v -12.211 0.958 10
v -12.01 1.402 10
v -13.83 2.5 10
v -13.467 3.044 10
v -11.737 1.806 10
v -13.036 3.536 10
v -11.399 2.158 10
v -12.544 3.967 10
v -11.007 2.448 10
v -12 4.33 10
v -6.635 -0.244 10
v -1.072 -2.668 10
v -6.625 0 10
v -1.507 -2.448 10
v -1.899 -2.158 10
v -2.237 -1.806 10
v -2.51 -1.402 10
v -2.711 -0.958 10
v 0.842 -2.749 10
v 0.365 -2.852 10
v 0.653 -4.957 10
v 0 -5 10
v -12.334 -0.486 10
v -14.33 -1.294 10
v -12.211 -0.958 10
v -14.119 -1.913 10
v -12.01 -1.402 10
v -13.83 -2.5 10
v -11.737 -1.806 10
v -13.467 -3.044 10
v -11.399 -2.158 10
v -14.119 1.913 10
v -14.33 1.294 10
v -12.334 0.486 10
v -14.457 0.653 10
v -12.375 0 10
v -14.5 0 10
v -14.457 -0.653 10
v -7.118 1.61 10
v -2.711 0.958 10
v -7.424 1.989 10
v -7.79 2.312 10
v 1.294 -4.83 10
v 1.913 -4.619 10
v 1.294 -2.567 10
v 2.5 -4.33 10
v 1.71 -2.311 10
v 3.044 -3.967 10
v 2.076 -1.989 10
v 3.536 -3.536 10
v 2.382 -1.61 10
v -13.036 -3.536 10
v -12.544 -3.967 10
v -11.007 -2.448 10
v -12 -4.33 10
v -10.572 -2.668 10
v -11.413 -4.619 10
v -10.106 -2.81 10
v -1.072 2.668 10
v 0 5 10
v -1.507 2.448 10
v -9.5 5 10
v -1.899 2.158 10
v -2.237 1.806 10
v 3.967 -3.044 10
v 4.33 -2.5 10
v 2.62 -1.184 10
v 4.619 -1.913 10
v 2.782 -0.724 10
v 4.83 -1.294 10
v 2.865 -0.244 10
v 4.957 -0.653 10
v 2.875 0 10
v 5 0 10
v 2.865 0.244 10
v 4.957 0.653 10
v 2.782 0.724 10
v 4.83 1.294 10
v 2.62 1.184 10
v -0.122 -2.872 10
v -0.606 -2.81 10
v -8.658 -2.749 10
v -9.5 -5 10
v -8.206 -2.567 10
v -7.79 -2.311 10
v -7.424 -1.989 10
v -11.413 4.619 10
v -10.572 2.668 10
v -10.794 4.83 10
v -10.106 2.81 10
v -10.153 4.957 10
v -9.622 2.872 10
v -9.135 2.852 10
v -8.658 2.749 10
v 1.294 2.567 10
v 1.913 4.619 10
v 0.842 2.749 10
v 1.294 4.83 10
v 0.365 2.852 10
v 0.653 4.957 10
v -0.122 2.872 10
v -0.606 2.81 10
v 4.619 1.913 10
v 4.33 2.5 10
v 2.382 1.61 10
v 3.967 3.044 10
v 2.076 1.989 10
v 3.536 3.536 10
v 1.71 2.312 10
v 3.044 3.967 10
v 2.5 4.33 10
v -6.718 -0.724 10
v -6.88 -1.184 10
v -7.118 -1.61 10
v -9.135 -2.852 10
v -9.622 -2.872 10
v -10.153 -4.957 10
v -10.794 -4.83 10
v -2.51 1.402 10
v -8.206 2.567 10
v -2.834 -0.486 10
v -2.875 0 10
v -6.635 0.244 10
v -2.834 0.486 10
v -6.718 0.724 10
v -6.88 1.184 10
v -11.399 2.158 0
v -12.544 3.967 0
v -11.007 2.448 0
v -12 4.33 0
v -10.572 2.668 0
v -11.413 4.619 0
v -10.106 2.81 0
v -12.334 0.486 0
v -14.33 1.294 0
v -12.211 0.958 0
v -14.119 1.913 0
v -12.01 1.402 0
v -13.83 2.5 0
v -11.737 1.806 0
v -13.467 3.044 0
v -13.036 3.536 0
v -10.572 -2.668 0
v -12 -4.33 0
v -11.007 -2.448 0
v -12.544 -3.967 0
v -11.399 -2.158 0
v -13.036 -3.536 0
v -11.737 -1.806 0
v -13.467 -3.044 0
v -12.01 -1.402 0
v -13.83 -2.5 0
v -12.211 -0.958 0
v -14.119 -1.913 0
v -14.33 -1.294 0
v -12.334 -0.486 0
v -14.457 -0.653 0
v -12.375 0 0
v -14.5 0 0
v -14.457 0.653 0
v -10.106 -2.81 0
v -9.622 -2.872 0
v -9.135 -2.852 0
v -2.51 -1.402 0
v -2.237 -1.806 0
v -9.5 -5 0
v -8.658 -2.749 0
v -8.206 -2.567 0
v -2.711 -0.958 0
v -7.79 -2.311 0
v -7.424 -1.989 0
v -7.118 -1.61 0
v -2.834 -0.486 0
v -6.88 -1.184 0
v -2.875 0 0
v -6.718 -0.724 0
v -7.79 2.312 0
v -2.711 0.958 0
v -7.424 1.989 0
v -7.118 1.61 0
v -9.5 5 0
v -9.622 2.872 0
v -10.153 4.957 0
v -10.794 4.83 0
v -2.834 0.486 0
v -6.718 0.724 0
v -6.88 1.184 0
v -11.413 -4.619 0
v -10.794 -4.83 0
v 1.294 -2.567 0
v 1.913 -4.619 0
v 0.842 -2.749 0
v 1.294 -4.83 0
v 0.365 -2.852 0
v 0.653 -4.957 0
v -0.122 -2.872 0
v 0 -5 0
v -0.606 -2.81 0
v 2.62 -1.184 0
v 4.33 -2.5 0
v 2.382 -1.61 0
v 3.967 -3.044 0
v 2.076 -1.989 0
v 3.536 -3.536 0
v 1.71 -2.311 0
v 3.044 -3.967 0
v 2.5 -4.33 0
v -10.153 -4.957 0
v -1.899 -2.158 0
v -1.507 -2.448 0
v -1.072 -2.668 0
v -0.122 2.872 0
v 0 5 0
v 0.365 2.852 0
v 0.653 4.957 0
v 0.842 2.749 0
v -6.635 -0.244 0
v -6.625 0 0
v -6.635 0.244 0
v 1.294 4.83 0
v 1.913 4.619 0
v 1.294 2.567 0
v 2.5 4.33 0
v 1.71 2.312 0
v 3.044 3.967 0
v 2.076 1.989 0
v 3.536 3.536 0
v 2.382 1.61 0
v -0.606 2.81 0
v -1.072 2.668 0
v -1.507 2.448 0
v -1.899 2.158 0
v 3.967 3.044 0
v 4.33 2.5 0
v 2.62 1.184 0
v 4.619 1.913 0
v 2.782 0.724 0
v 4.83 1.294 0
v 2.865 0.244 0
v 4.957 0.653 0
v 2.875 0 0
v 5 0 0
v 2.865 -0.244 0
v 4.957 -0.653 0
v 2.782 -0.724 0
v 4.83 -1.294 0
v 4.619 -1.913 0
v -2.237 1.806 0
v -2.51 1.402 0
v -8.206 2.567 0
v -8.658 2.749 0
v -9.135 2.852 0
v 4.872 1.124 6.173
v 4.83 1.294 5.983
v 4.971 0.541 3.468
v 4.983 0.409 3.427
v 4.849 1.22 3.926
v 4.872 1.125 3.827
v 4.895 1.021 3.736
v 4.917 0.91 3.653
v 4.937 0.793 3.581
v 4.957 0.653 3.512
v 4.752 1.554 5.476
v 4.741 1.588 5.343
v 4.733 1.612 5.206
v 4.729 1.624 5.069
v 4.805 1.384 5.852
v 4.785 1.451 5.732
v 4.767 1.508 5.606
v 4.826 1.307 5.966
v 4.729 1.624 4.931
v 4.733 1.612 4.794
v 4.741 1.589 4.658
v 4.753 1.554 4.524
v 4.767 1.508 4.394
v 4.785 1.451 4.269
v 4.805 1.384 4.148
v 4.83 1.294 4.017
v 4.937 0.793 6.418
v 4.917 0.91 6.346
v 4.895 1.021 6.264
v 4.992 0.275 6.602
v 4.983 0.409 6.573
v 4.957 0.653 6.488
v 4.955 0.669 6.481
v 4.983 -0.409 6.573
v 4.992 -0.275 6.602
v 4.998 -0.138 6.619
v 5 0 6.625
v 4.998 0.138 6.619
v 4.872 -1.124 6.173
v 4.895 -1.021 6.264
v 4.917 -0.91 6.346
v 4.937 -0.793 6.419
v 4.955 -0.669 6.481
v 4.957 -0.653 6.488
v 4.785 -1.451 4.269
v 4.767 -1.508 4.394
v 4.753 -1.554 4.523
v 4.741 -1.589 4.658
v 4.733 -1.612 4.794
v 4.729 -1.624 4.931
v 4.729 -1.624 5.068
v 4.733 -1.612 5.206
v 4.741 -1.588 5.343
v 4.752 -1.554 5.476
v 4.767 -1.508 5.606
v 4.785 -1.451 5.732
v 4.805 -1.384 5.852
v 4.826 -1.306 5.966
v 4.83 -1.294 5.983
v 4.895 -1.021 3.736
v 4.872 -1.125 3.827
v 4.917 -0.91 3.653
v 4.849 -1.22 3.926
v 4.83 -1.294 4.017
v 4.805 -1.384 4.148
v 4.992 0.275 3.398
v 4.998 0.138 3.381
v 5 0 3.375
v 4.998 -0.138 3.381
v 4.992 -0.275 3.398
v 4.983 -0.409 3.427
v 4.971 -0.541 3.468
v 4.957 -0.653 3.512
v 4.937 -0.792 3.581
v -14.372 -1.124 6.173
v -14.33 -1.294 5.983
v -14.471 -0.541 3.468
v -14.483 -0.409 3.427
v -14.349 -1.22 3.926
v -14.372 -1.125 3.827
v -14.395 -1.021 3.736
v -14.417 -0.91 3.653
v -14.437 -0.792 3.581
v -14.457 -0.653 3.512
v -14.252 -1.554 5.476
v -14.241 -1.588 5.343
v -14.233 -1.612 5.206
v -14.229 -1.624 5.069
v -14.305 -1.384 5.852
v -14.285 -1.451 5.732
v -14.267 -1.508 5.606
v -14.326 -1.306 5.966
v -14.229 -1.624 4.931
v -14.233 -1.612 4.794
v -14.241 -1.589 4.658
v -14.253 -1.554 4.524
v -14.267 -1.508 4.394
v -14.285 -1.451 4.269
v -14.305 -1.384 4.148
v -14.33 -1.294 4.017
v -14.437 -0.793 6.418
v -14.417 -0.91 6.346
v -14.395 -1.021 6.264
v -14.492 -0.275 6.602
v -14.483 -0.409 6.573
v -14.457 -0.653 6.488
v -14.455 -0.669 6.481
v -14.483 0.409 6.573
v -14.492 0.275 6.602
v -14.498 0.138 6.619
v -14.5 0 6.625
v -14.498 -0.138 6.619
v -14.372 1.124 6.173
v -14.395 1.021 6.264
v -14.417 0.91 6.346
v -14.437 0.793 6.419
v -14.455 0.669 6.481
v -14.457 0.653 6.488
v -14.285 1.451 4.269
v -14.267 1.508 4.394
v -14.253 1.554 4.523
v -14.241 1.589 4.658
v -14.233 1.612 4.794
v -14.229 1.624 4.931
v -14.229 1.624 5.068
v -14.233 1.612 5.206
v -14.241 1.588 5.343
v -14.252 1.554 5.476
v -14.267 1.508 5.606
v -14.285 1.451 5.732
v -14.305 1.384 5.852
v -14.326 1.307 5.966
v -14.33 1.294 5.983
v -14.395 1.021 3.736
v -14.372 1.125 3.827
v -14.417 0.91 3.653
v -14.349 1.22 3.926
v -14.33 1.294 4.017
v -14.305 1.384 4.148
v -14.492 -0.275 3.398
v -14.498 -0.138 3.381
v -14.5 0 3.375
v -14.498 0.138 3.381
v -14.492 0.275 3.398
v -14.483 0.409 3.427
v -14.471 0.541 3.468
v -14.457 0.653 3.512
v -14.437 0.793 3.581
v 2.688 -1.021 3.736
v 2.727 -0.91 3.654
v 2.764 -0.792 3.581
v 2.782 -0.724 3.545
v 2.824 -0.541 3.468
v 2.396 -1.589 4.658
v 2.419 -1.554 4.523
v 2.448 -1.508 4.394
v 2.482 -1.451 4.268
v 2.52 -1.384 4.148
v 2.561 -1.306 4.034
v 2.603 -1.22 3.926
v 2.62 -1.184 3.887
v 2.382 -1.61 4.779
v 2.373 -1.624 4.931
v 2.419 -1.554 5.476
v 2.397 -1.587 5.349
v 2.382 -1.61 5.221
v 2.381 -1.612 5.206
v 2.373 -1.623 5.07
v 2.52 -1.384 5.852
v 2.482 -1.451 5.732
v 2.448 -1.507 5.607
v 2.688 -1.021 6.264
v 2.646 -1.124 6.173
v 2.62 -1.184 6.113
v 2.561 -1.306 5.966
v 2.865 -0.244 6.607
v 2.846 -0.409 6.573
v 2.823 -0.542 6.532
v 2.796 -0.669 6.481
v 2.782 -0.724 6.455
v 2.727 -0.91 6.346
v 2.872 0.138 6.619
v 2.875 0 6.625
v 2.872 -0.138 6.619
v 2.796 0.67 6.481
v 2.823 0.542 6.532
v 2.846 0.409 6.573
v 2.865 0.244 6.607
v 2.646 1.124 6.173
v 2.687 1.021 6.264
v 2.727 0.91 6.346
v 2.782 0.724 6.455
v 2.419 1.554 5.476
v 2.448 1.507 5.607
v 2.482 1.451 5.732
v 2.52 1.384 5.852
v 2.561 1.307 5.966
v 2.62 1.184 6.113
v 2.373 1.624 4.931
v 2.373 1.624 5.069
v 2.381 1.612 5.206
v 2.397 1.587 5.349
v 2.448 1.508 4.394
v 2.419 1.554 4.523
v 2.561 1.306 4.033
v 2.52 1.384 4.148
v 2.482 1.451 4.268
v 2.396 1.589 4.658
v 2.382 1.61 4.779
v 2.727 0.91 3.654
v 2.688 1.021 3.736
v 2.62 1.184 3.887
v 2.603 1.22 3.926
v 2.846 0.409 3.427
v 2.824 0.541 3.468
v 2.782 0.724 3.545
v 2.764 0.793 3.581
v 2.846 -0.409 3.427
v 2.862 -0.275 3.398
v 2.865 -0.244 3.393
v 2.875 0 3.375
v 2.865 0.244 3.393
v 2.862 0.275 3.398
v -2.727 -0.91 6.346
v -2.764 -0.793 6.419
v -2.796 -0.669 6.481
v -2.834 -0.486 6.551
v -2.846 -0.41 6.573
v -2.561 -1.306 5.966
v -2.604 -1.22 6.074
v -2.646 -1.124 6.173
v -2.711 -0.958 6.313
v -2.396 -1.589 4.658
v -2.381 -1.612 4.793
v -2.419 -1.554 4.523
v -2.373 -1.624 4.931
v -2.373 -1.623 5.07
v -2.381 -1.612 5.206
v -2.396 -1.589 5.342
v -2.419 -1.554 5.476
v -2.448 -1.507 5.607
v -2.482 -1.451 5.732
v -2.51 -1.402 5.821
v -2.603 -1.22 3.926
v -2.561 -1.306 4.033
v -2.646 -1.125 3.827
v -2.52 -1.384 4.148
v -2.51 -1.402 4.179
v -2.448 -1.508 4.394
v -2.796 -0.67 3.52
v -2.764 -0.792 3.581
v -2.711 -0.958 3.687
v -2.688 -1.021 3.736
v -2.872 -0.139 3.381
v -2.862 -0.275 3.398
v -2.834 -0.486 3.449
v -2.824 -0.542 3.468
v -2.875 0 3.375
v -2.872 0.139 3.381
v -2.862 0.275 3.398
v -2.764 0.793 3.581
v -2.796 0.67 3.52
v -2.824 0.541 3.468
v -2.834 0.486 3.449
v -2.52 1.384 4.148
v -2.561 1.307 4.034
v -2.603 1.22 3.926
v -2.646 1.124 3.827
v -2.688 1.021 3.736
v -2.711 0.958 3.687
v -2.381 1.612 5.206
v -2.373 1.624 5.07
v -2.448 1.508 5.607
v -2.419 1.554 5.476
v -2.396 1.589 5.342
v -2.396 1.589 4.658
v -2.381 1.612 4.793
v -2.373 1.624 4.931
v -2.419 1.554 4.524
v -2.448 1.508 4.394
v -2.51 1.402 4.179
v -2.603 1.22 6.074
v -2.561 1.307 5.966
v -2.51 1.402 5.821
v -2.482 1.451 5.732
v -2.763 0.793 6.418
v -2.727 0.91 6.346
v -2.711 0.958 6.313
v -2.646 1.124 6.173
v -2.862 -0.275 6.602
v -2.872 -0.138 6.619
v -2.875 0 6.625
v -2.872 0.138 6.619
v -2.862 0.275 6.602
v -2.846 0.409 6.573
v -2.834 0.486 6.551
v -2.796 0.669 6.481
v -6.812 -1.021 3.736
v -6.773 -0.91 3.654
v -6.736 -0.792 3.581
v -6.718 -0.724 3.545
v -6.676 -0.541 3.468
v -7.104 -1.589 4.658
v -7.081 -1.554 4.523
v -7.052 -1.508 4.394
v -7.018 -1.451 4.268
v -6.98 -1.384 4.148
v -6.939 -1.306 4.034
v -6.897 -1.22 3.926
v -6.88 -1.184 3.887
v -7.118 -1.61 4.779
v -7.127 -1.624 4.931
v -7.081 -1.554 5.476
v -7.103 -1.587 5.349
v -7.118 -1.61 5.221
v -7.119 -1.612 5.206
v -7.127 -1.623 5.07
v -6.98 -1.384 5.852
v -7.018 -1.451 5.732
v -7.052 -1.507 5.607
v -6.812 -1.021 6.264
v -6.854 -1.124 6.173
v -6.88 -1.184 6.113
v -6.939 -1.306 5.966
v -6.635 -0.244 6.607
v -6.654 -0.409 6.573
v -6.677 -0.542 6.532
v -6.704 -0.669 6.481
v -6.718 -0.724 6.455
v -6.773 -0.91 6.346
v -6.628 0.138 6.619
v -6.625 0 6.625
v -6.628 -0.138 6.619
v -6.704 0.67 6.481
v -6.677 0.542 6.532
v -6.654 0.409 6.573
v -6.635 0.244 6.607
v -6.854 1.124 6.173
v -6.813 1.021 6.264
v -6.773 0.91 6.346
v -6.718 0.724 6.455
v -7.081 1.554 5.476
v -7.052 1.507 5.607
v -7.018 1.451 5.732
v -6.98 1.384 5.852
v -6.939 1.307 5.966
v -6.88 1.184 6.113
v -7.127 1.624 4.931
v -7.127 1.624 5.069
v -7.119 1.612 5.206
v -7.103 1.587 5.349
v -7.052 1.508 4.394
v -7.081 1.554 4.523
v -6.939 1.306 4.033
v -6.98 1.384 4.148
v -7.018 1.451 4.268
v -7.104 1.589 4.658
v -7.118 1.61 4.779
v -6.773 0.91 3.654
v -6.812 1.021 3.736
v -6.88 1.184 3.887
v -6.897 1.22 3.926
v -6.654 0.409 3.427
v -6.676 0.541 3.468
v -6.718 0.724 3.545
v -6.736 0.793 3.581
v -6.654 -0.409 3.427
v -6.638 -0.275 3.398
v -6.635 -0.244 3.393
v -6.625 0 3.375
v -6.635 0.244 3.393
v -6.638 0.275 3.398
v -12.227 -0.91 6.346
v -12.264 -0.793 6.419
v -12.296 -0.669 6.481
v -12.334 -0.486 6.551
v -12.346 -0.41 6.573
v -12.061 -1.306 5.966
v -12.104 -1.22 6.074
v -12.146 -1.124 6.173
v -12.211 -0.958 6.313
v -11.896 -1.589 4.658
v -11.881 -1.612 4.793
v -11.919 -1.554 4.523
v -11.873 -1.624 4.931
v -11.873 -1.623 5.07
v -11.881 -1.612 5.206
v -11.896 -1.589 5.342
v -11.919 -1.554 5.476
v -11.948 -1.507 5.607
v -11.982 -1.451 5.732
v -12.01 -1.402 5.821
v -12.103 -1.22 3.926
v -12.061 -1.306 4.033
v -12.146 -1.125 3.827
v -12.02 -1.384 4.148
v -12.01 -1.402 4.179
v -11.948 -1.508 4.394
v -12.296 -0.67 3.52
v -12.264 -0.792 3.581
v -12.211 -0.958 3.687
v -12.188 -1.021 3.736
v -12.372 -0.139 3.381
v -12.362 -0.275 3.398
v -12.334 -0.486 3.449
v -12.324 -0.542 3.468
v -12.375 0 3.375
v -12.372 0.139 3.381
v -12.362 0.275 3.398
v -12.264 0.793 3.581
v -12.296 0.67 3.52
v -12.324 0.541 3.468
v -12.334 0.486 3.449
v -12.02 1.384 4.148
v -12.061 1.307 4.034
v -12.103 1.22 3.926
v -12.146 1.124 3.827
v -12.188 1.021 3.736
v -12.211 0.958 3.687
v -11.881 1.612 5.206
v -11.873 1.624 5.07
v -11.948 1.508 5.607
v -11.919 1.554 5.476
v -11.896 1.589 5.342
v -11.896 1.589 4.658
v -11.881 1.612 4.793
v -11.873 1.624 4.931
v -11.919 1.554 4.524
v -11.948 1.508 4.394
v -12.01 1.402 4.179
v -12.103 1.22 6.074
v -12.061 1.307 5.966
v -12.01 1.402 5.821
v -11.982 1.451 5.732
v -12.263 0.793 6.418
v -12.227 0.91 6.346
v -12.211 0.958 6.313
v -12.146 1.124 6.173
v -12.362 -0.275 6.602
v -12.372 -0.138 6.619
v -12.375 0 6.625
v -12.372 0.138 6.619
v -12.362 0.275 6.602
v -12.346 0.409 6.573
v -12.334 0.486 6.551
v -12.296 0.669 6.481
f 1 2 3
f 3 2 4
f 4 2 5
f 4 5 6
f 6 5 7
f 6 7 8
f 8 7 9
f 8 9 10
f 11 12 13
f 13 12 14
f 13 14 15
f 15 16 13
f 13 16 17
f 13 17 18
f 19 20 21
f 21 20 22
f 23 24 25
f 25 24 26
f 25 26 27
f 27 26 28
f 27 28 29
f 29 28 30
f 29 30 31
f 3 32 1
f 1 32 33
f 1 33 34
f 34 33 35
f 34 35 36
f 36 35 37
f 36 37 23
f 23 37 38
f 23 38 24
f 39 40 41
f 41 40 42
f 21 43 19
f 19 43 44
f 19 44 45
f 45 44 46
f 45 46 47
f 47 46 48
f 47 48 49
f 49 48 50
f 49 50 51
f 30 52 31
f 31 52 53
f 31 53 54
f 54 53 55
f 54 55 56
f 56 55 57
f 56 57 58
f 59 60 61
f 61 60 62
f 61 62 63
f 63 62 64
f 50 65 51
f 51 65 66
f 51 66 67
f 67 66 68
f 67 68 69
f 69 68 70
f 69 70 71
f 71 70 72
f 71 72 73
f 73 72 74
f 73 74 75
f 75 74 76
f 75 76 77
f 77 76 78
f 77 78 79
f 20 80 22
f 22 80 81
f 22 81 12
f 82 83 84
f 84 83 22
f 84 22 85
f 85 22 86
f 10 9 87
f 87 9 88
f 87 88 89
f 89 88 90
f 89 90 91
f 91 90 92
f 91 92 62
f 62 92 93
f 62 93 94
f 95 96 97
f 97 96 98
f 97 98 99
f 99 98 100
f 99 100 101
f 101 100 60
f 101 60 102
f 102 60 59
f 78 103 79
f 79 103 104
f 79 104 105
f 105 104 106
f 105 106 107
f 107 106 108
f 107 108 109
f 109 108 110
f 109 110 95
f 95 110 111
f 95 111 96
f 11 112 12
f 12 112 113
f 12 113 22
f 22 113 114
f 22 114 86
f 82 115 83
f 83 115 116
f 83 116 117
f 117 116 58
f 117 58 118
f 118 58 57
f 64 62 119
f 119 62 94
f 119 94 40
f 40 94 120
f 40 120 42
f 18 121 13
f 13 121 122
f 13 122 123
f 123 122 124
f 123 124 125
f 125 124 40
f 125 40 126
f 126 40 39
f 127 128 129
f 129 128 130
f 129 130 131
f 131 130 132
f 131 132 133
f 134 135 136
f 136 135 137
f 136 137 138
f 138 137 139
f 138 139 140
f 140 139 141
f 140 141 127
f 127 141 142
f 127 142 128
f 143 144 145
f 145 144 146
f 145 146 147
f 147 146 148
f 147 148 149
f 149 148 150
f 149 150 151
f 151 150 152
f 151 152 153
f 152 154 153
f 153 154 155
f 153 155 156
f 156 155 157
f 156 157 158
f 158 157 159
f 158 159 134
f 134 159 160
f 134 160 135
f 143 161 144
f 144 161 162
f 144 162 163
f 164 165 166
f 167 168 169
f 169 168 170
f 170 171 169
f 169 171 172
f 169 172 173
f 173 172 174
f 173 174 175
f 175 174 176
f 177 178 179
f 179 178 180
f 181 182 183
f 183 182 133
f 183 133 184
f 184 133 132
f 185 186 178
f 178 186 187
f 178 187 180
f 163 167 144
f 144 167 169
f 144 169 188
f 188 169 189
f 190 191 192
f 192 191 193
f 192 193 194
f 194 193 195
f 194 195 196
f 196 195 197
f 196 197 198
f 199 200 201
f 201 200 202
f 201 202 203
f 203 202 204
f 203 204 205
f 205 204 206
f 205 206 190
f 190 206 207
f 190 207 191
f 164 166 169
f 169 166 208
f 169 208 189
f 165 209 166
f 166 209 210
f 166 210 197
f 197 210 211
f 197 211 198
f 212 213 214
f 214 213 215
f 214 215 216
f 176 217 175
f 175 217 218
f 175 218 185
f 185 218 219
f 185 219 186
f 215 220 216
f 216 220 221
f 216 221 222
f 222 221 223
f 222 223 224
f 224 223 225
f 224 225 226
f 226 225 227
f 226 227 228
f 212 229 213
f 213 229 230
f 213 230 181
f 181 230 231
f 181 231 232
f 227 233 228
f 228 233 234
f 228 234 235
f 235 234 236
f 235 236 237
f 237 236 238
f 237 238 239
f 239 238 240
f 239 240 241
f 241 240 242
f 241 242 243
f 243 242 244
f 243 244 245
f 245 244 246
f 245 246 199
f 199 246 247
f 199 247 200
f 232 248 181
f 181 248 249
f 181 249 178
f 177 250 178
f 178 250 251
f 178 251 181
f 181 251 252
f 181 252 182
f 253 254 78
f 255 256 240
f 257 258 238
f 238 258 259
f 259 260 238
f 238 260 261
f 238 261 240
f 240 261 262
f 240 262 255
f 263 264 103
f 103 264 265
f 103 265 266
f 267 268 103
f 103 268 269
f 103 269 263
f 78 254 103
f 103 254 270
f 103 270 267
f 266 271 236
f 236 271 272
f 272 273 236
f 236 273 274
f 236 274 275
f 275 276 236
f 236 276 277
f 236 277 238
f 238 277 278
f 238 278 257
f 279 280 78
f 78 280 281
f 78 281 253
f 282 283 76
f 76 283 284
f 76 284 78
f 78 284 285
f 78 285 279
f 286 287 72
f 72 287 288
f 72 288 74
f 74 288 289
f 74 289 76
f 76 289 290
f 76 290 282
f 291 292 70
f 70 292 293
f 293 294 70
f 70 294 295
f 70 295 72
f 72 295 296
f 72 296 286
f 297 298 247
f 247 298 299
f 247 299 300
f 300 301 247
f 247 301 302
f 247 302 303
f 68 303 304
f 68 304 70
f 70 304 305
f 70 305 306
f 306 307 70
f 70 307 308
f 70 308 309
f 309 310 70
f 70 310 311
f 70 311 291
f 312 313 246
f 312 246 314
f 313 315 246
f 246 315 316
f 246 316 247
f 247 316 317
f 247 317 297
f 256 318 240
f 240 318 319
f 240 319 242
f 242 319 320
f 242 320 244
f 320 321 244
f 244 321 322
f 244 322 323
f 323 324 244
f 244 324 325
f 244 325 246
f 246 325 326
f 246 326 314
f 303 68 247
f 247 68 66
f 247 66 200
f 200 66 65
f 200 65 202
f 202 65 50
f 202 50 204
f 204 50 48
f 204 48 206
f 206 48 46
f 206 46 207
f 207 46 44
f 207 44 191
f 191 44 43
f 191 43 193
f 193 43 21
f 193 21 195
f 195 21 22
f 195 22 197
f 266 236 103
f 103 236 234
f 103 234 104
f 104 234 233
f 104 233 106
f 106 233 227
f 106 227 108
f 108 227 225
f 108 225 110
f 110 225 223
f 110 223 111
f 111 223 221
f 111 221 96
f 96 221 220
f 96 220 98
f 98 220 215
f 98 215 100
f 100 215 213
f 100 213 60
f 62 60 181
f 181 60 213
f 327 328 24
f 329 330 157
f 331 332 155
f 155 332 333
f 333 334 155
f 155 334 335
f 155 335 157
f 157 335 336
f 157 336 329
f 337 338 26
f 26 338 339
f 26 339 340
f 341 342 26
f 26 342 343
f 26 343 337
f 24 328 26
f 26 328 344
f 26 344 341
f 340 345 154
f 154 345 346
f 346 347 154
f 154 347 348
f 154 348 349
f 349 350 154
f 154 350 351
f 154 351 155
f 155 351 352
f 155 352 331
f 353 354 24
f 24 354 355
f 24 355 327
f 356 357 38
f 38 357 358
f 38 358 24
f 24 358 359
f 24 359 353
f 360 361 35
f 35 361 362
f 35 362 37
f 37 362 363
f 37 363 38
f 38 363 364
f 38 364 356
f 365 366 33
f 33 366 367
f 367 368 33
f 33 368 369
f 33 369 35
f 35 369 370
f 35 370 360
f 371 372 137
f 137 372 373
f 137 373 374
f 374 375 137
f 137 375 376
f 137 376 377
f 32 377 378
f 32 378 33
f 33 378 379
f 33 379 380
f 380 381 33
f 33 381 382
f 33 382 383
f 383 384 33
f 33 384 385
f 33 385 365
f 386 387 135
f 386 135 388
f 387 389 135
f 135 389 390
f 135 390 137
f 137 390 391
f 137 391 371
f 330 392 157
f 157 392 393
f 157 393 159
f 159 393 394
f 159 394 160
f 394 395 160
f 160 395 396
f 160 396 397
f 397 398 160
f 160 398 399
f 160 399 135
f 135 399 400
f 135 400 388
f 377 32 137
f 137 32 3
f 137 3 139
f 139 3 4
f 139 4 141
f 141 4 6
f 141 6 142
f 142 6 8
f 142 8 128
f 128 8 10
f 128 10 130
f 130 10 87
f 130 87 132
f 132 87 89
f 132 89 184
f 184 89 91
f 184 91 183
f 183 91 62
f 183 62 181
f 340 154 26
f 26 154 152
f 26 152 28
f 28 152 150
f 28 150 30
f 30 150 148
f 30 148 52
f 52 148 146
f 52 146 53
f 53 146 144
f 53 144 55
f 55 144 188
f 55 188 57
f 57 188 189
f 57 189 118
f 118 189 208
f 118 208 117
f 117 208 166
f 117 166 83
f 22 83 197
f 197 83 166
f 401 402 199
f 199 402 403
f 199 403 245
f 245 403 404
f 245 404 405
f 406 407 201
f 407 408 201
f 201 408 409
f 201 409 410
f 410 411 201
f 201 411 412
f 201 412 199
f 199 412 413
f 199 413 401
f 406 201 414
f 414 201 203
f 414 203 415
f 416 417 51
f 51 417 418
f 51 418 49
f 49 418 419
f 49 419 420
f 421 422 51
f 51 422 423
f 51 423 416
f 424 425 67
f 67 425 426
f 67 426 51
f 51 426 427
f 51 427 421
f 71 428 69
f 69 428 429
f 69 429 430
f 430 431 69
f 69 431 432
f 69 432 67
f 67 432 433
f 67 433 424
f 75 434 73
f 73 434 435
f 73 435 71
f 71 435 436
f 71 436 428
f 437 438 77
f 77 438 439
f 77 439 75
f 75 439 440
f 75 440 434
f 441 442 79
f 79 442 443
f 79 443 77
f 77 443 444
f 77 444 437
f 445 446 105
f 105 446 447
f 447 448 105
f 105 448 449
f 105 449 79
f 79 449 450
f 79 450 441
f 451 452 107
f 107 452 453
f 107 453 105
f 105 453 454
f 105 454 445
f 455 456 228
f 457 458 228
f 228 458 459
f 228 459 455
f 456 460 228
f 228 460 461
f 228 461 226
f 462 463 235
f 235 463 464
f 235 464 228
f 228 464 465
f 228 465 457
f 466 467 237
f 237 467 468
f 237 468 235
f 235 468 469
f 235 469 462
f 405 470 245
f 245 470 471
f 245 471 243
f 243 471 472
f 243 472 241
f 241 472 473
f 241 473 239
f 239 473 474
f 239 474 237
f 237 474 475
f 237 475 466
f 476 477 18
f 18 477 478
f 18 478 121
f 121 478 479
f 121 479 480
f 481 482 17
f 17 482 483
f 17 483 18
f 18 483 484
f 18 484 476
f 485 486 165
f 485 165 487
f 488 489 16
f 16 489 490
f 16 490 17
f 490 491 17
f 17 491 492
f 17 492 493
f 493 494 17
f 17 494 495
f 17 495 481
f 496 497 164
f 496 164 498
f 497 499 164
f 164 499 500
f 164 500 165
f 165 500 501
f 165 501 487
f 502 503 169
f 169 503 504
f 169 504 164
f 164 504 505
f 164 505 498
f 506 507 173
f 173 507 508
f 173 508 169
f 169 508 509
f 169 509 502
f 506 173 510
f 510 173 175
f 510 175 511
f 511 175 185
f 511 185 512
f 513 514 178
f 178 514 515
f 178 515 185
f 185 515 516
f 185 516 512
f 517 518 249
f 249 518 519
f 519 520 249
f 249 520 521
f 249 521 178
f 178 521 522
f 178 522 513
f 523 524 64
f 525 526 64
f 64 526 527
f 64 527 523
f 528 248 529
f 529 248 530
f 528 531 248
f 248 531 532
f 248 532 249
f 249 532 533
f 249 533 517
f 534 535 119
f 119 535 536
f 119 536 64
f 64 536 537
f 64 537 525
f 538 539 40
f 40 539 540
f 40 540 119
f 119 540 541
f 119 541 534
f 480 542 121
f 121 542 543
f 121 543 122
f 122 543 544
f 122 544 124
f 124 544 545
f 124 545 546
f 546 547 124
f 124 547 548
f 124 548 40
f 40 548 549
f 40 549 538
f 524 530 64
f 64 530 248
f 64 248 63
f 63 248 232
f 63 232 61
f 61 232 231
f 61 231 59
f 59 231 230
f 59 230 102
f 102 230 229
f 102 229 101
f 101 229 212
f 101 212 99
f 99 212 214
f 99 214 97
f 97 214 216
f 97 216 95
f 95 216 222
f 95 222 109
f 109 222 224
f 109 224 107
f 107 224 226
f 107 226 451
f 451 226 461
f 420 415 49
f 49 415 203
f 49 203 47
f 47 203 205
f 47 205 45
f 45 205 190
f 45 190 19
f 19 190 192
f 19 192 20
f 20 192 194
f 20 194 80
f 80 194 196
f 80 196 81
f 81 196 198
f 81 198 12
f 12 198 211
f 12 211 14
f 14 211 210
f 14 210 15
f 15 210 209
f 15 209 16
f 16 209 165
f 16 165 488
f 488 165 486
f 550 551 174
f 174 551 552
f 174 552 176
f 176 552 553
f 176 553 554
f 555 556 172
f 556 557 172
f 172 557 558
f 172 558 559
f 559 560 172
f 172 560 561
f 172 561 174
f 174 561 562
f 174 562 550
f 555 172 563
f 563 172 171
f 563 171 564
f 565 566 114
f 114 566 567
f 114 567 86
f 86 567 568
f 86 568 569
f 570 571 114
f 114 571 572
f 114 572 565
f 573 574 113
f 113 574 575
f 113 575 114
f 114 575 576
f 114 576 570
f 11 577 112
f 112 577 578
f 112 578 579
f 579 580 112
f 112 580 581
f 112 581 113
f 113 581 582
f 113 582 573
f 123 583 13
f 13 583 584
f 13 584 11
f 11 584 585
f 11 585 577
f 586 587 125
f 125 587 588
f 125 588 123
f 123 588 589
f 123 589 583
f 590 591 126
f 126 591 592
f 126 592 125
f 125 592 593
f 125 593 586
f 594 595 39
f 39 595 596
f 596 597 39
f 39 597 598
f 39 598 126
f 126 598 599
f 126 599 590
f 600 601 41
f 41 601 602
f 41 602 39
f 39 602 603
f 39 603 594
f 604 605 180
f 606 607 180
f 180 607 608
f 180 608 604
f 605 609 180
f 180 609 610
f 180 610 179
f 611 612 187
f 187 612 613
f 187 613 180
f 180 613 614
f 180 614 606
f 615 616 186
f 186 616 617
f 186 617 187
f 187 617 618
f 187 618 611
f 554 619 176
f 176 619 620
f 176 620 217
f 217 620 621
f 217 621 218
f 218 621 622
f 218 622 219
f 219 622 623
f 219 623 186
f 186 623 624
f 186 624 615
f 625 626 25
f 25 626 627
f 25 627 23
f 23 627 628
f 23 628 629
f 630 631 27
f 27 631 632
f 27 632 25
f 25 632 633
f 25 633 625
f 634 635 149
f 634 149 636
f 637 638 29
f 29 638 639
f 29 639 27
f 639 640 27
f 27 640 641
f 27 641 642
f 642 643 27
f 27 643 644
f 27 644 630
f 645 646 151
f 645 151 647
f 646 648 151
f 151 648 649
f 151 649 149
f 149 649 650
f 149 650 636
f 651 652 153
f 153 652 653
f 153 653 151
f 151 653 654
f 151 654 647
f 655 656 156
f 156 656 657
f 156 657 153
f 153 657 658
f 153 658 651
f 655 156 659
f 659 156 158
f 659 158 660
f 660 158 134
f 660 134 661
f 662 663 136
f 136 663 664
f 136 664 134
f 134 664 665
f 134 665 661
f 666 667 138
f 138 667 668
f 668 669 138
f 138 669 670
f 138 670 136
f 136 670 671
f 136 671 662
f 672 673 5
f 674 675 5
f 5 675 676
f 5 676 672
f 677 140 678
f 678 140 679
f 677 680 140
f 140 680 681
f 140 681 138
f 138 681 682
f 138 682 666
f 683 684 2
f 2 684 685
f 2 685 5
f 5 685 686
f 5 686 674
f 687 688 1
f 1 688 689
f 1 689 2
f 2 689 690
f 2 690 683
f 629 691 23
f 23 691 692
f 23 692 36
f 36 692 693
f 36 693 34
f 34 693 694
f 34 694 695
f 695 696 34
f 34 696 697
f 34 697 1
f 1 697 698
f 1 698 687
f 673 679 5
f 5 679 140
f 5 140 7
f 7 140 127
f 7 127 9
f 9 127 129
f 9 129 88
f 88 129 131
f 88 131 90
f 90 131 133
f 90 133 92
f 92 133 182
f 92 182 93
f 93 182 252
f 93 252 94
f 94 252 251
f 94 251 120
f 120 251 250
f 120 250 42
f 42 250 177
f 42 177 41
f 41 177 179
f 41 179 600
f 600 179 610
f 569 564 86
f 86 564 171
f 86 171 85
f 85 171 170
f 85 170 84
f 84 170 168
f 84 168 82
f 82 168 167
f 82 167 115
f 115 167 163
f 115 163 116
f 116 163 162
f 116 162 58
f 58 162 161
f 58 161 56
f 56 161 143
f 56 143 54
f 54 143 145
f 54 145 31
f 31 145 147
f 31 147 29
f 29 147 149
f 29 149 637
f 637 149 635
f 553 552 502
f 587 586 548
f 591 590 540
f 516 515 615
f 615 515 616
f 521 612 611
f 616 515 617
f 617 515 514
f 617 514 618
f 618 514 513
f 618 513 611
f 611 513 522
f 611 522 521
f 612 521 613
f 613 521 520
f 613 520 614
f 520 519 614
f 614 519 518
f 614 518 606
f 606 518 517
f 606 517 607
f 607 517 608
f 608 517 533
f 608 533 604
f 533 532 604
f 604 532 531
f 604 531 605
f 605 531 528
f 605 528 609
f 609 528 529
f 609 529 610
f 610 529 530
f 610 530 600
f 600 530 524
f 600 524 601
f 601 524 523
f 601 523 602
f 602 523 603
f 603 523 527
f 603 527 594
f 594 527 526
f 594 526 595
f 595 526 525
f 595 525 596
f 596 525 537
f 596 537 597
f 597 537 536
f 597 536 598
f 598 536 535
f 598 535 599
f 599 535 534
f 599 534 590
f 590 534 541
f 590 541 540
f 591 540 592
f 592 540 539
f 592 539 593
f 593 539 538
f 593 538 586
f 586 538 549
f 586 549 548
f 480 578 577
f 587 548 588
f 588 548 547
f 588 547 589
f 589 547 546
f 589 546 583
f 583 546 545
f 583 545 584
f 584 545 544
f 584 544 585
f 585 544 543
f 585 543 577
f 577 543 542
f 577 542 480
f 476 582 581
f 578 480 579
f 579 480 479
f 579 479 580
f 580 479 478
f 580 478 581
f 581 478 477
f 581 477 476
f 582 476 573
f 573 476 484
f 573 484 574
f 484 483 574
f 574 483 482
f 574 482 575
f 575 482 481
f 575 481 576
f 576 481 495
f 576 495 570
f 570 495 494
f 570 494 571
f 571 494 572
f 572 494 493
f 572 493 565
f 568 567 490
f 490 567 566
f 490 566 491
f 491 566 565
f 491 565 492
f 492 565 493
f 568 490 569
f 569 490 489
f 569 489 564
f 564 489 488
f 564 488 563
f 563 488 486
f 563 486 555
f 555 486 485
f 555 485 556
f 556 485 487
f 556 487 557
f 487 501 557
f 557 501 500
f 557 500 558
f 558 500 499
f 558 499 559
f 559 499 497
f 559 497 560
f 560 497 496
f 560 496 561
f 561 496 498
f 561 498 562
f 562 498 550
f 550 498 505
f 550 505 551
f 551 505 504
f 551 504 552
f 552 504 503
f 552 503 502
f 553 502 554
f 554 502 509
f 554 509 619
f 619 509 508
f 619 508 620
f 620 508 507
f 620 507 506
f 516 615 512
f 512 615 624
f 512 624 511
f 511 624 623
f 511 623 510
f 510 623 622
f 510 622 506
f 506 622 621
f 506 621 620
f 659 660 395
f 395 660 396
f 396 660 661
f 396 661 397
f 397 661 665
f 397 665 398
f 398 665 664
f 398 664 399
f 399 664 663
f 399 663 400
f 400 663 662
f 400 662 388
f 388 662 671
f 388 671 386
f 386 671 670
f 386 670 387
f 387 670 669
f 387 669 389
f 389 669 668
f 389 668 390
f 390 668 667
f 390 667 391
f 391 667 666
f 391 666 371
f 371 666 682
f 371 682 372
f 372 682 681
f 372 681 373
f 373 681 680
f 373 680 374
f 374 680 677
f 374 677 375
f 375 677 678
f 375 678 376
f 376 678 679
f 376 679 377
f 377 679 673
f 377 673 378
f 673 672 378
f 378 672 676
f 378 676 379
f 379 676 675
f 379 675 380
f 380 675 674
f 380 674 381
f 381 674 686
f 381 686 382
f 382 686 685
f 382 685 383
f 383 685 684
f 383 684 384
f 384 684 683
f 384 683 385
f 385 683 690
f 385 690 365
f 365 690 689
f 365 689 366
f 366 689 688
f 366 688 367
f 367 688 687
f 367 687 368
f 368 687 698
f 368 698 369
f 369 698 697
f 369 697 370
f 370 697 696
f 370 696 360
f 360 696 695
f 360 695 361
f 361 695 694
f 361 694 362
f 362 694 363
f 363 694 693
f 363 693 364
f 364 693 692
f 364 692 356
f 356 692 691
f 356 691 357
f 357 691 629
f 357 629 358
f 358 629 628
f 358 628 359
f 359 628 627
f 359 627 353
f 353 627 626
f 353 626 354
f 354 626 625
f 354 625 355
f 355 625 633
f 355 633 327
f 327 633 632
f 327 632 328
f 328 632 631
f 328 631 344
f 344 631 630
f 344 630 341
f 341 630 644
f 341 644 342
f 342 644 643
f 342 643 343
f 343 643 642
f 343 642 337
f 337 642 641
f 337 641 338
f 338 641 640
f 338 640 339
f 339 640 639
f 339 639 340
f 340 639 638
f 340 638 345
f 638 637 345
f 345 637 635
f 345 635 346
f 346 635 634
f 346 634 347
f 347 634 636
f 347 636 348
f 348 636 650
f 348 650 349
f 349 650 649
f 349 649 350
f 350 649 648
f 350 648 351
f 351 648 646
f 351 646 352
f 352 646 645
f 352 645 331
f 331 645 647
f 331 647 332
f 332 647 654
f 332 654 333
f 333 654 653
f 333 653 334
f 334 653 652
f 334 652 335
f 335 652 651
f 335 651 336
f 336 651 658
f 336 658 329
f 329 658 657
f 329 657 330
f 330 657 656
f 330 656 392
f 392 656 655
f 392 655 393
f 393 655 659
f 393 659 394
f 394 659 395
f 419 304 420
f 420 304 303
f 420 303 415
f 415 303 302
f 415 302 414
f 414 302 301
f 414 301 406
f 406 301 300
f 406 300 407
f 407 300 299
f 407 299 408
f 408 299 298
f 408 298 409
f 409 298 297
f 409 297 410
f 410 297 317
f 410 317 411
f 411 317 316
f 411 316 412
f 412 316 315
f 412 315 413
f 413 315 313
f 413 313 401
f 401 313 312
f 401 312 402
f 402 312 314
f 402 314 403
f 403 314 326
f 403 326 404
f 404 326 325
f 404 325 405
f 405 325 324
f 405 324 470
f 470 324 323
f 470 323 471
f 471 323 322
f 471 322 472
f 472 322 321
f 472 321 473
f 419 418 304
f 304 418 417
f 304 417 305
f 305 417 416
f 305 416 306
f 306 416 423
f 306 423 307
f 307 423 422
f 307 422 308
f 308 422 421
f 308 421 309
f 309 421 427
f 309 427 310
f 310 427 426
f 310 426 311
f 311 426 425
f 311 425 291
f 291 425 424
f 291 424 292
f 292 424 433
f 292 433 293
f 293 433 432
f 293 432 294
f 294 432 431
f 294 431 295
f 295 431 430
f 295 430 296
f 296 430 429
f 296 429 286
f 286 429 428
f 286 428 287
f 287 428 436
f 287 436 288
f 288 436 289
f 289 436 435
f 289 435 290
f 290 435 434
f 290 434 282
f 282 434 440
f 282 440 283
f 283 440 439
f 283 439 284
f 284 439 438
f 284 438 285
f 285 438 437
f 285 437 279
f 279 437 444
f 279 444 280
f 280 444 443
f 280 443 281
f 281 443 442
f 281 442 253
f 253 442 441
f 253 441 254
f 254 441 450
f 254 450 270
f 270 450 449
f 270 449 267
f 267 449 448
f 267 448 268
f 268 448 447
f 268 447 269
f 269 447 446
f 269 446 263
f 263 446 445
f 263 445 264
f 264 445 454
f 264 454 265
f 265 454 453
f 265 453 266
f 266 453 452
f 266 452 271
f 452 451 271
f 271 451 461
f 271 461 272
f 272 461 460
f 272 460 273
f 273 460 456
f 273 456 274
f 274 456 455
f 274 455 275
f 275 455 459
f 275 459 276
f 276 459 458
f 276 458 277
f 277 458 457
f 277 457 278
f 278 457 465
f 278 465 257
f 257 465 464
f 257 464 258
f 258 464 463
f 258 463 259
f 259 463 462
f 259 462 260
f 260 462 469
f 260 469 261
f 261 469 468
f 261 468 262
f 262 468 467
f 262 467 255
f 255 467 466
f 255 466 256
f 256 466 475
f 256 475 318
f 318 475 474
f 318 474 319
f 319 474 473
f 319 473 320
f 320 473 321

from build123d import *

# Parameters (mm, degrees)
SKETCH1_R               = 2.875
BOSS_EXTRUDE1_DEPTH     = 10
SKETCH2_R               = 1.625
CUT_EXTRUDE1_DEPTH      = 6
CUT_EXTRUDE1_DEPTH_BACK = 15.5


with BuildPart() as part:
    # Sketch1 → Boss-Extrude1 (new body)
    with BuildSketch(Plane.XY):
        with BuildLine():
            Line((0, -5), (-9.5, -5))
            ThreePointArc((-9.5, -5), (-14.5, 0), (-9.5, 5))
            Line((-9.5, 5), (0, 5))
            ThreePointArc((0, 5), (5, 0), (0, -5))
        make_face()
        Circle(SKETCH1_R, mode=Mode.SUBTRACT)
        with Locations((-9.5, 0)):
            Circle(SKETCH1_R, mode=Mode.SUBTRACT)
    extrude(amount=BOSS_EXTRUDE1_DEPTH)

    # Sketch2 → Cut-Extrude1 (cut, two sides)
    with BuildSketch(Plane(origin=(0, 0, 0), x_dir=(0, 0, -1), z_dir=(1, 0, 0))) as cut_extrude1_sk:
        with Locations((-5, 0)):
            Circle(SKETCH2_R)
    extrude(amount=CUT_EXTRUDE1_DEPTH, mode=Mode.SUBTRACT)
    extrude(cut_extrude1_sk.sketch, amount=-CUT_EXTRUDE1_DEPTH_BACK, mode=Mode.SUBTRACT)


solid = part.part
